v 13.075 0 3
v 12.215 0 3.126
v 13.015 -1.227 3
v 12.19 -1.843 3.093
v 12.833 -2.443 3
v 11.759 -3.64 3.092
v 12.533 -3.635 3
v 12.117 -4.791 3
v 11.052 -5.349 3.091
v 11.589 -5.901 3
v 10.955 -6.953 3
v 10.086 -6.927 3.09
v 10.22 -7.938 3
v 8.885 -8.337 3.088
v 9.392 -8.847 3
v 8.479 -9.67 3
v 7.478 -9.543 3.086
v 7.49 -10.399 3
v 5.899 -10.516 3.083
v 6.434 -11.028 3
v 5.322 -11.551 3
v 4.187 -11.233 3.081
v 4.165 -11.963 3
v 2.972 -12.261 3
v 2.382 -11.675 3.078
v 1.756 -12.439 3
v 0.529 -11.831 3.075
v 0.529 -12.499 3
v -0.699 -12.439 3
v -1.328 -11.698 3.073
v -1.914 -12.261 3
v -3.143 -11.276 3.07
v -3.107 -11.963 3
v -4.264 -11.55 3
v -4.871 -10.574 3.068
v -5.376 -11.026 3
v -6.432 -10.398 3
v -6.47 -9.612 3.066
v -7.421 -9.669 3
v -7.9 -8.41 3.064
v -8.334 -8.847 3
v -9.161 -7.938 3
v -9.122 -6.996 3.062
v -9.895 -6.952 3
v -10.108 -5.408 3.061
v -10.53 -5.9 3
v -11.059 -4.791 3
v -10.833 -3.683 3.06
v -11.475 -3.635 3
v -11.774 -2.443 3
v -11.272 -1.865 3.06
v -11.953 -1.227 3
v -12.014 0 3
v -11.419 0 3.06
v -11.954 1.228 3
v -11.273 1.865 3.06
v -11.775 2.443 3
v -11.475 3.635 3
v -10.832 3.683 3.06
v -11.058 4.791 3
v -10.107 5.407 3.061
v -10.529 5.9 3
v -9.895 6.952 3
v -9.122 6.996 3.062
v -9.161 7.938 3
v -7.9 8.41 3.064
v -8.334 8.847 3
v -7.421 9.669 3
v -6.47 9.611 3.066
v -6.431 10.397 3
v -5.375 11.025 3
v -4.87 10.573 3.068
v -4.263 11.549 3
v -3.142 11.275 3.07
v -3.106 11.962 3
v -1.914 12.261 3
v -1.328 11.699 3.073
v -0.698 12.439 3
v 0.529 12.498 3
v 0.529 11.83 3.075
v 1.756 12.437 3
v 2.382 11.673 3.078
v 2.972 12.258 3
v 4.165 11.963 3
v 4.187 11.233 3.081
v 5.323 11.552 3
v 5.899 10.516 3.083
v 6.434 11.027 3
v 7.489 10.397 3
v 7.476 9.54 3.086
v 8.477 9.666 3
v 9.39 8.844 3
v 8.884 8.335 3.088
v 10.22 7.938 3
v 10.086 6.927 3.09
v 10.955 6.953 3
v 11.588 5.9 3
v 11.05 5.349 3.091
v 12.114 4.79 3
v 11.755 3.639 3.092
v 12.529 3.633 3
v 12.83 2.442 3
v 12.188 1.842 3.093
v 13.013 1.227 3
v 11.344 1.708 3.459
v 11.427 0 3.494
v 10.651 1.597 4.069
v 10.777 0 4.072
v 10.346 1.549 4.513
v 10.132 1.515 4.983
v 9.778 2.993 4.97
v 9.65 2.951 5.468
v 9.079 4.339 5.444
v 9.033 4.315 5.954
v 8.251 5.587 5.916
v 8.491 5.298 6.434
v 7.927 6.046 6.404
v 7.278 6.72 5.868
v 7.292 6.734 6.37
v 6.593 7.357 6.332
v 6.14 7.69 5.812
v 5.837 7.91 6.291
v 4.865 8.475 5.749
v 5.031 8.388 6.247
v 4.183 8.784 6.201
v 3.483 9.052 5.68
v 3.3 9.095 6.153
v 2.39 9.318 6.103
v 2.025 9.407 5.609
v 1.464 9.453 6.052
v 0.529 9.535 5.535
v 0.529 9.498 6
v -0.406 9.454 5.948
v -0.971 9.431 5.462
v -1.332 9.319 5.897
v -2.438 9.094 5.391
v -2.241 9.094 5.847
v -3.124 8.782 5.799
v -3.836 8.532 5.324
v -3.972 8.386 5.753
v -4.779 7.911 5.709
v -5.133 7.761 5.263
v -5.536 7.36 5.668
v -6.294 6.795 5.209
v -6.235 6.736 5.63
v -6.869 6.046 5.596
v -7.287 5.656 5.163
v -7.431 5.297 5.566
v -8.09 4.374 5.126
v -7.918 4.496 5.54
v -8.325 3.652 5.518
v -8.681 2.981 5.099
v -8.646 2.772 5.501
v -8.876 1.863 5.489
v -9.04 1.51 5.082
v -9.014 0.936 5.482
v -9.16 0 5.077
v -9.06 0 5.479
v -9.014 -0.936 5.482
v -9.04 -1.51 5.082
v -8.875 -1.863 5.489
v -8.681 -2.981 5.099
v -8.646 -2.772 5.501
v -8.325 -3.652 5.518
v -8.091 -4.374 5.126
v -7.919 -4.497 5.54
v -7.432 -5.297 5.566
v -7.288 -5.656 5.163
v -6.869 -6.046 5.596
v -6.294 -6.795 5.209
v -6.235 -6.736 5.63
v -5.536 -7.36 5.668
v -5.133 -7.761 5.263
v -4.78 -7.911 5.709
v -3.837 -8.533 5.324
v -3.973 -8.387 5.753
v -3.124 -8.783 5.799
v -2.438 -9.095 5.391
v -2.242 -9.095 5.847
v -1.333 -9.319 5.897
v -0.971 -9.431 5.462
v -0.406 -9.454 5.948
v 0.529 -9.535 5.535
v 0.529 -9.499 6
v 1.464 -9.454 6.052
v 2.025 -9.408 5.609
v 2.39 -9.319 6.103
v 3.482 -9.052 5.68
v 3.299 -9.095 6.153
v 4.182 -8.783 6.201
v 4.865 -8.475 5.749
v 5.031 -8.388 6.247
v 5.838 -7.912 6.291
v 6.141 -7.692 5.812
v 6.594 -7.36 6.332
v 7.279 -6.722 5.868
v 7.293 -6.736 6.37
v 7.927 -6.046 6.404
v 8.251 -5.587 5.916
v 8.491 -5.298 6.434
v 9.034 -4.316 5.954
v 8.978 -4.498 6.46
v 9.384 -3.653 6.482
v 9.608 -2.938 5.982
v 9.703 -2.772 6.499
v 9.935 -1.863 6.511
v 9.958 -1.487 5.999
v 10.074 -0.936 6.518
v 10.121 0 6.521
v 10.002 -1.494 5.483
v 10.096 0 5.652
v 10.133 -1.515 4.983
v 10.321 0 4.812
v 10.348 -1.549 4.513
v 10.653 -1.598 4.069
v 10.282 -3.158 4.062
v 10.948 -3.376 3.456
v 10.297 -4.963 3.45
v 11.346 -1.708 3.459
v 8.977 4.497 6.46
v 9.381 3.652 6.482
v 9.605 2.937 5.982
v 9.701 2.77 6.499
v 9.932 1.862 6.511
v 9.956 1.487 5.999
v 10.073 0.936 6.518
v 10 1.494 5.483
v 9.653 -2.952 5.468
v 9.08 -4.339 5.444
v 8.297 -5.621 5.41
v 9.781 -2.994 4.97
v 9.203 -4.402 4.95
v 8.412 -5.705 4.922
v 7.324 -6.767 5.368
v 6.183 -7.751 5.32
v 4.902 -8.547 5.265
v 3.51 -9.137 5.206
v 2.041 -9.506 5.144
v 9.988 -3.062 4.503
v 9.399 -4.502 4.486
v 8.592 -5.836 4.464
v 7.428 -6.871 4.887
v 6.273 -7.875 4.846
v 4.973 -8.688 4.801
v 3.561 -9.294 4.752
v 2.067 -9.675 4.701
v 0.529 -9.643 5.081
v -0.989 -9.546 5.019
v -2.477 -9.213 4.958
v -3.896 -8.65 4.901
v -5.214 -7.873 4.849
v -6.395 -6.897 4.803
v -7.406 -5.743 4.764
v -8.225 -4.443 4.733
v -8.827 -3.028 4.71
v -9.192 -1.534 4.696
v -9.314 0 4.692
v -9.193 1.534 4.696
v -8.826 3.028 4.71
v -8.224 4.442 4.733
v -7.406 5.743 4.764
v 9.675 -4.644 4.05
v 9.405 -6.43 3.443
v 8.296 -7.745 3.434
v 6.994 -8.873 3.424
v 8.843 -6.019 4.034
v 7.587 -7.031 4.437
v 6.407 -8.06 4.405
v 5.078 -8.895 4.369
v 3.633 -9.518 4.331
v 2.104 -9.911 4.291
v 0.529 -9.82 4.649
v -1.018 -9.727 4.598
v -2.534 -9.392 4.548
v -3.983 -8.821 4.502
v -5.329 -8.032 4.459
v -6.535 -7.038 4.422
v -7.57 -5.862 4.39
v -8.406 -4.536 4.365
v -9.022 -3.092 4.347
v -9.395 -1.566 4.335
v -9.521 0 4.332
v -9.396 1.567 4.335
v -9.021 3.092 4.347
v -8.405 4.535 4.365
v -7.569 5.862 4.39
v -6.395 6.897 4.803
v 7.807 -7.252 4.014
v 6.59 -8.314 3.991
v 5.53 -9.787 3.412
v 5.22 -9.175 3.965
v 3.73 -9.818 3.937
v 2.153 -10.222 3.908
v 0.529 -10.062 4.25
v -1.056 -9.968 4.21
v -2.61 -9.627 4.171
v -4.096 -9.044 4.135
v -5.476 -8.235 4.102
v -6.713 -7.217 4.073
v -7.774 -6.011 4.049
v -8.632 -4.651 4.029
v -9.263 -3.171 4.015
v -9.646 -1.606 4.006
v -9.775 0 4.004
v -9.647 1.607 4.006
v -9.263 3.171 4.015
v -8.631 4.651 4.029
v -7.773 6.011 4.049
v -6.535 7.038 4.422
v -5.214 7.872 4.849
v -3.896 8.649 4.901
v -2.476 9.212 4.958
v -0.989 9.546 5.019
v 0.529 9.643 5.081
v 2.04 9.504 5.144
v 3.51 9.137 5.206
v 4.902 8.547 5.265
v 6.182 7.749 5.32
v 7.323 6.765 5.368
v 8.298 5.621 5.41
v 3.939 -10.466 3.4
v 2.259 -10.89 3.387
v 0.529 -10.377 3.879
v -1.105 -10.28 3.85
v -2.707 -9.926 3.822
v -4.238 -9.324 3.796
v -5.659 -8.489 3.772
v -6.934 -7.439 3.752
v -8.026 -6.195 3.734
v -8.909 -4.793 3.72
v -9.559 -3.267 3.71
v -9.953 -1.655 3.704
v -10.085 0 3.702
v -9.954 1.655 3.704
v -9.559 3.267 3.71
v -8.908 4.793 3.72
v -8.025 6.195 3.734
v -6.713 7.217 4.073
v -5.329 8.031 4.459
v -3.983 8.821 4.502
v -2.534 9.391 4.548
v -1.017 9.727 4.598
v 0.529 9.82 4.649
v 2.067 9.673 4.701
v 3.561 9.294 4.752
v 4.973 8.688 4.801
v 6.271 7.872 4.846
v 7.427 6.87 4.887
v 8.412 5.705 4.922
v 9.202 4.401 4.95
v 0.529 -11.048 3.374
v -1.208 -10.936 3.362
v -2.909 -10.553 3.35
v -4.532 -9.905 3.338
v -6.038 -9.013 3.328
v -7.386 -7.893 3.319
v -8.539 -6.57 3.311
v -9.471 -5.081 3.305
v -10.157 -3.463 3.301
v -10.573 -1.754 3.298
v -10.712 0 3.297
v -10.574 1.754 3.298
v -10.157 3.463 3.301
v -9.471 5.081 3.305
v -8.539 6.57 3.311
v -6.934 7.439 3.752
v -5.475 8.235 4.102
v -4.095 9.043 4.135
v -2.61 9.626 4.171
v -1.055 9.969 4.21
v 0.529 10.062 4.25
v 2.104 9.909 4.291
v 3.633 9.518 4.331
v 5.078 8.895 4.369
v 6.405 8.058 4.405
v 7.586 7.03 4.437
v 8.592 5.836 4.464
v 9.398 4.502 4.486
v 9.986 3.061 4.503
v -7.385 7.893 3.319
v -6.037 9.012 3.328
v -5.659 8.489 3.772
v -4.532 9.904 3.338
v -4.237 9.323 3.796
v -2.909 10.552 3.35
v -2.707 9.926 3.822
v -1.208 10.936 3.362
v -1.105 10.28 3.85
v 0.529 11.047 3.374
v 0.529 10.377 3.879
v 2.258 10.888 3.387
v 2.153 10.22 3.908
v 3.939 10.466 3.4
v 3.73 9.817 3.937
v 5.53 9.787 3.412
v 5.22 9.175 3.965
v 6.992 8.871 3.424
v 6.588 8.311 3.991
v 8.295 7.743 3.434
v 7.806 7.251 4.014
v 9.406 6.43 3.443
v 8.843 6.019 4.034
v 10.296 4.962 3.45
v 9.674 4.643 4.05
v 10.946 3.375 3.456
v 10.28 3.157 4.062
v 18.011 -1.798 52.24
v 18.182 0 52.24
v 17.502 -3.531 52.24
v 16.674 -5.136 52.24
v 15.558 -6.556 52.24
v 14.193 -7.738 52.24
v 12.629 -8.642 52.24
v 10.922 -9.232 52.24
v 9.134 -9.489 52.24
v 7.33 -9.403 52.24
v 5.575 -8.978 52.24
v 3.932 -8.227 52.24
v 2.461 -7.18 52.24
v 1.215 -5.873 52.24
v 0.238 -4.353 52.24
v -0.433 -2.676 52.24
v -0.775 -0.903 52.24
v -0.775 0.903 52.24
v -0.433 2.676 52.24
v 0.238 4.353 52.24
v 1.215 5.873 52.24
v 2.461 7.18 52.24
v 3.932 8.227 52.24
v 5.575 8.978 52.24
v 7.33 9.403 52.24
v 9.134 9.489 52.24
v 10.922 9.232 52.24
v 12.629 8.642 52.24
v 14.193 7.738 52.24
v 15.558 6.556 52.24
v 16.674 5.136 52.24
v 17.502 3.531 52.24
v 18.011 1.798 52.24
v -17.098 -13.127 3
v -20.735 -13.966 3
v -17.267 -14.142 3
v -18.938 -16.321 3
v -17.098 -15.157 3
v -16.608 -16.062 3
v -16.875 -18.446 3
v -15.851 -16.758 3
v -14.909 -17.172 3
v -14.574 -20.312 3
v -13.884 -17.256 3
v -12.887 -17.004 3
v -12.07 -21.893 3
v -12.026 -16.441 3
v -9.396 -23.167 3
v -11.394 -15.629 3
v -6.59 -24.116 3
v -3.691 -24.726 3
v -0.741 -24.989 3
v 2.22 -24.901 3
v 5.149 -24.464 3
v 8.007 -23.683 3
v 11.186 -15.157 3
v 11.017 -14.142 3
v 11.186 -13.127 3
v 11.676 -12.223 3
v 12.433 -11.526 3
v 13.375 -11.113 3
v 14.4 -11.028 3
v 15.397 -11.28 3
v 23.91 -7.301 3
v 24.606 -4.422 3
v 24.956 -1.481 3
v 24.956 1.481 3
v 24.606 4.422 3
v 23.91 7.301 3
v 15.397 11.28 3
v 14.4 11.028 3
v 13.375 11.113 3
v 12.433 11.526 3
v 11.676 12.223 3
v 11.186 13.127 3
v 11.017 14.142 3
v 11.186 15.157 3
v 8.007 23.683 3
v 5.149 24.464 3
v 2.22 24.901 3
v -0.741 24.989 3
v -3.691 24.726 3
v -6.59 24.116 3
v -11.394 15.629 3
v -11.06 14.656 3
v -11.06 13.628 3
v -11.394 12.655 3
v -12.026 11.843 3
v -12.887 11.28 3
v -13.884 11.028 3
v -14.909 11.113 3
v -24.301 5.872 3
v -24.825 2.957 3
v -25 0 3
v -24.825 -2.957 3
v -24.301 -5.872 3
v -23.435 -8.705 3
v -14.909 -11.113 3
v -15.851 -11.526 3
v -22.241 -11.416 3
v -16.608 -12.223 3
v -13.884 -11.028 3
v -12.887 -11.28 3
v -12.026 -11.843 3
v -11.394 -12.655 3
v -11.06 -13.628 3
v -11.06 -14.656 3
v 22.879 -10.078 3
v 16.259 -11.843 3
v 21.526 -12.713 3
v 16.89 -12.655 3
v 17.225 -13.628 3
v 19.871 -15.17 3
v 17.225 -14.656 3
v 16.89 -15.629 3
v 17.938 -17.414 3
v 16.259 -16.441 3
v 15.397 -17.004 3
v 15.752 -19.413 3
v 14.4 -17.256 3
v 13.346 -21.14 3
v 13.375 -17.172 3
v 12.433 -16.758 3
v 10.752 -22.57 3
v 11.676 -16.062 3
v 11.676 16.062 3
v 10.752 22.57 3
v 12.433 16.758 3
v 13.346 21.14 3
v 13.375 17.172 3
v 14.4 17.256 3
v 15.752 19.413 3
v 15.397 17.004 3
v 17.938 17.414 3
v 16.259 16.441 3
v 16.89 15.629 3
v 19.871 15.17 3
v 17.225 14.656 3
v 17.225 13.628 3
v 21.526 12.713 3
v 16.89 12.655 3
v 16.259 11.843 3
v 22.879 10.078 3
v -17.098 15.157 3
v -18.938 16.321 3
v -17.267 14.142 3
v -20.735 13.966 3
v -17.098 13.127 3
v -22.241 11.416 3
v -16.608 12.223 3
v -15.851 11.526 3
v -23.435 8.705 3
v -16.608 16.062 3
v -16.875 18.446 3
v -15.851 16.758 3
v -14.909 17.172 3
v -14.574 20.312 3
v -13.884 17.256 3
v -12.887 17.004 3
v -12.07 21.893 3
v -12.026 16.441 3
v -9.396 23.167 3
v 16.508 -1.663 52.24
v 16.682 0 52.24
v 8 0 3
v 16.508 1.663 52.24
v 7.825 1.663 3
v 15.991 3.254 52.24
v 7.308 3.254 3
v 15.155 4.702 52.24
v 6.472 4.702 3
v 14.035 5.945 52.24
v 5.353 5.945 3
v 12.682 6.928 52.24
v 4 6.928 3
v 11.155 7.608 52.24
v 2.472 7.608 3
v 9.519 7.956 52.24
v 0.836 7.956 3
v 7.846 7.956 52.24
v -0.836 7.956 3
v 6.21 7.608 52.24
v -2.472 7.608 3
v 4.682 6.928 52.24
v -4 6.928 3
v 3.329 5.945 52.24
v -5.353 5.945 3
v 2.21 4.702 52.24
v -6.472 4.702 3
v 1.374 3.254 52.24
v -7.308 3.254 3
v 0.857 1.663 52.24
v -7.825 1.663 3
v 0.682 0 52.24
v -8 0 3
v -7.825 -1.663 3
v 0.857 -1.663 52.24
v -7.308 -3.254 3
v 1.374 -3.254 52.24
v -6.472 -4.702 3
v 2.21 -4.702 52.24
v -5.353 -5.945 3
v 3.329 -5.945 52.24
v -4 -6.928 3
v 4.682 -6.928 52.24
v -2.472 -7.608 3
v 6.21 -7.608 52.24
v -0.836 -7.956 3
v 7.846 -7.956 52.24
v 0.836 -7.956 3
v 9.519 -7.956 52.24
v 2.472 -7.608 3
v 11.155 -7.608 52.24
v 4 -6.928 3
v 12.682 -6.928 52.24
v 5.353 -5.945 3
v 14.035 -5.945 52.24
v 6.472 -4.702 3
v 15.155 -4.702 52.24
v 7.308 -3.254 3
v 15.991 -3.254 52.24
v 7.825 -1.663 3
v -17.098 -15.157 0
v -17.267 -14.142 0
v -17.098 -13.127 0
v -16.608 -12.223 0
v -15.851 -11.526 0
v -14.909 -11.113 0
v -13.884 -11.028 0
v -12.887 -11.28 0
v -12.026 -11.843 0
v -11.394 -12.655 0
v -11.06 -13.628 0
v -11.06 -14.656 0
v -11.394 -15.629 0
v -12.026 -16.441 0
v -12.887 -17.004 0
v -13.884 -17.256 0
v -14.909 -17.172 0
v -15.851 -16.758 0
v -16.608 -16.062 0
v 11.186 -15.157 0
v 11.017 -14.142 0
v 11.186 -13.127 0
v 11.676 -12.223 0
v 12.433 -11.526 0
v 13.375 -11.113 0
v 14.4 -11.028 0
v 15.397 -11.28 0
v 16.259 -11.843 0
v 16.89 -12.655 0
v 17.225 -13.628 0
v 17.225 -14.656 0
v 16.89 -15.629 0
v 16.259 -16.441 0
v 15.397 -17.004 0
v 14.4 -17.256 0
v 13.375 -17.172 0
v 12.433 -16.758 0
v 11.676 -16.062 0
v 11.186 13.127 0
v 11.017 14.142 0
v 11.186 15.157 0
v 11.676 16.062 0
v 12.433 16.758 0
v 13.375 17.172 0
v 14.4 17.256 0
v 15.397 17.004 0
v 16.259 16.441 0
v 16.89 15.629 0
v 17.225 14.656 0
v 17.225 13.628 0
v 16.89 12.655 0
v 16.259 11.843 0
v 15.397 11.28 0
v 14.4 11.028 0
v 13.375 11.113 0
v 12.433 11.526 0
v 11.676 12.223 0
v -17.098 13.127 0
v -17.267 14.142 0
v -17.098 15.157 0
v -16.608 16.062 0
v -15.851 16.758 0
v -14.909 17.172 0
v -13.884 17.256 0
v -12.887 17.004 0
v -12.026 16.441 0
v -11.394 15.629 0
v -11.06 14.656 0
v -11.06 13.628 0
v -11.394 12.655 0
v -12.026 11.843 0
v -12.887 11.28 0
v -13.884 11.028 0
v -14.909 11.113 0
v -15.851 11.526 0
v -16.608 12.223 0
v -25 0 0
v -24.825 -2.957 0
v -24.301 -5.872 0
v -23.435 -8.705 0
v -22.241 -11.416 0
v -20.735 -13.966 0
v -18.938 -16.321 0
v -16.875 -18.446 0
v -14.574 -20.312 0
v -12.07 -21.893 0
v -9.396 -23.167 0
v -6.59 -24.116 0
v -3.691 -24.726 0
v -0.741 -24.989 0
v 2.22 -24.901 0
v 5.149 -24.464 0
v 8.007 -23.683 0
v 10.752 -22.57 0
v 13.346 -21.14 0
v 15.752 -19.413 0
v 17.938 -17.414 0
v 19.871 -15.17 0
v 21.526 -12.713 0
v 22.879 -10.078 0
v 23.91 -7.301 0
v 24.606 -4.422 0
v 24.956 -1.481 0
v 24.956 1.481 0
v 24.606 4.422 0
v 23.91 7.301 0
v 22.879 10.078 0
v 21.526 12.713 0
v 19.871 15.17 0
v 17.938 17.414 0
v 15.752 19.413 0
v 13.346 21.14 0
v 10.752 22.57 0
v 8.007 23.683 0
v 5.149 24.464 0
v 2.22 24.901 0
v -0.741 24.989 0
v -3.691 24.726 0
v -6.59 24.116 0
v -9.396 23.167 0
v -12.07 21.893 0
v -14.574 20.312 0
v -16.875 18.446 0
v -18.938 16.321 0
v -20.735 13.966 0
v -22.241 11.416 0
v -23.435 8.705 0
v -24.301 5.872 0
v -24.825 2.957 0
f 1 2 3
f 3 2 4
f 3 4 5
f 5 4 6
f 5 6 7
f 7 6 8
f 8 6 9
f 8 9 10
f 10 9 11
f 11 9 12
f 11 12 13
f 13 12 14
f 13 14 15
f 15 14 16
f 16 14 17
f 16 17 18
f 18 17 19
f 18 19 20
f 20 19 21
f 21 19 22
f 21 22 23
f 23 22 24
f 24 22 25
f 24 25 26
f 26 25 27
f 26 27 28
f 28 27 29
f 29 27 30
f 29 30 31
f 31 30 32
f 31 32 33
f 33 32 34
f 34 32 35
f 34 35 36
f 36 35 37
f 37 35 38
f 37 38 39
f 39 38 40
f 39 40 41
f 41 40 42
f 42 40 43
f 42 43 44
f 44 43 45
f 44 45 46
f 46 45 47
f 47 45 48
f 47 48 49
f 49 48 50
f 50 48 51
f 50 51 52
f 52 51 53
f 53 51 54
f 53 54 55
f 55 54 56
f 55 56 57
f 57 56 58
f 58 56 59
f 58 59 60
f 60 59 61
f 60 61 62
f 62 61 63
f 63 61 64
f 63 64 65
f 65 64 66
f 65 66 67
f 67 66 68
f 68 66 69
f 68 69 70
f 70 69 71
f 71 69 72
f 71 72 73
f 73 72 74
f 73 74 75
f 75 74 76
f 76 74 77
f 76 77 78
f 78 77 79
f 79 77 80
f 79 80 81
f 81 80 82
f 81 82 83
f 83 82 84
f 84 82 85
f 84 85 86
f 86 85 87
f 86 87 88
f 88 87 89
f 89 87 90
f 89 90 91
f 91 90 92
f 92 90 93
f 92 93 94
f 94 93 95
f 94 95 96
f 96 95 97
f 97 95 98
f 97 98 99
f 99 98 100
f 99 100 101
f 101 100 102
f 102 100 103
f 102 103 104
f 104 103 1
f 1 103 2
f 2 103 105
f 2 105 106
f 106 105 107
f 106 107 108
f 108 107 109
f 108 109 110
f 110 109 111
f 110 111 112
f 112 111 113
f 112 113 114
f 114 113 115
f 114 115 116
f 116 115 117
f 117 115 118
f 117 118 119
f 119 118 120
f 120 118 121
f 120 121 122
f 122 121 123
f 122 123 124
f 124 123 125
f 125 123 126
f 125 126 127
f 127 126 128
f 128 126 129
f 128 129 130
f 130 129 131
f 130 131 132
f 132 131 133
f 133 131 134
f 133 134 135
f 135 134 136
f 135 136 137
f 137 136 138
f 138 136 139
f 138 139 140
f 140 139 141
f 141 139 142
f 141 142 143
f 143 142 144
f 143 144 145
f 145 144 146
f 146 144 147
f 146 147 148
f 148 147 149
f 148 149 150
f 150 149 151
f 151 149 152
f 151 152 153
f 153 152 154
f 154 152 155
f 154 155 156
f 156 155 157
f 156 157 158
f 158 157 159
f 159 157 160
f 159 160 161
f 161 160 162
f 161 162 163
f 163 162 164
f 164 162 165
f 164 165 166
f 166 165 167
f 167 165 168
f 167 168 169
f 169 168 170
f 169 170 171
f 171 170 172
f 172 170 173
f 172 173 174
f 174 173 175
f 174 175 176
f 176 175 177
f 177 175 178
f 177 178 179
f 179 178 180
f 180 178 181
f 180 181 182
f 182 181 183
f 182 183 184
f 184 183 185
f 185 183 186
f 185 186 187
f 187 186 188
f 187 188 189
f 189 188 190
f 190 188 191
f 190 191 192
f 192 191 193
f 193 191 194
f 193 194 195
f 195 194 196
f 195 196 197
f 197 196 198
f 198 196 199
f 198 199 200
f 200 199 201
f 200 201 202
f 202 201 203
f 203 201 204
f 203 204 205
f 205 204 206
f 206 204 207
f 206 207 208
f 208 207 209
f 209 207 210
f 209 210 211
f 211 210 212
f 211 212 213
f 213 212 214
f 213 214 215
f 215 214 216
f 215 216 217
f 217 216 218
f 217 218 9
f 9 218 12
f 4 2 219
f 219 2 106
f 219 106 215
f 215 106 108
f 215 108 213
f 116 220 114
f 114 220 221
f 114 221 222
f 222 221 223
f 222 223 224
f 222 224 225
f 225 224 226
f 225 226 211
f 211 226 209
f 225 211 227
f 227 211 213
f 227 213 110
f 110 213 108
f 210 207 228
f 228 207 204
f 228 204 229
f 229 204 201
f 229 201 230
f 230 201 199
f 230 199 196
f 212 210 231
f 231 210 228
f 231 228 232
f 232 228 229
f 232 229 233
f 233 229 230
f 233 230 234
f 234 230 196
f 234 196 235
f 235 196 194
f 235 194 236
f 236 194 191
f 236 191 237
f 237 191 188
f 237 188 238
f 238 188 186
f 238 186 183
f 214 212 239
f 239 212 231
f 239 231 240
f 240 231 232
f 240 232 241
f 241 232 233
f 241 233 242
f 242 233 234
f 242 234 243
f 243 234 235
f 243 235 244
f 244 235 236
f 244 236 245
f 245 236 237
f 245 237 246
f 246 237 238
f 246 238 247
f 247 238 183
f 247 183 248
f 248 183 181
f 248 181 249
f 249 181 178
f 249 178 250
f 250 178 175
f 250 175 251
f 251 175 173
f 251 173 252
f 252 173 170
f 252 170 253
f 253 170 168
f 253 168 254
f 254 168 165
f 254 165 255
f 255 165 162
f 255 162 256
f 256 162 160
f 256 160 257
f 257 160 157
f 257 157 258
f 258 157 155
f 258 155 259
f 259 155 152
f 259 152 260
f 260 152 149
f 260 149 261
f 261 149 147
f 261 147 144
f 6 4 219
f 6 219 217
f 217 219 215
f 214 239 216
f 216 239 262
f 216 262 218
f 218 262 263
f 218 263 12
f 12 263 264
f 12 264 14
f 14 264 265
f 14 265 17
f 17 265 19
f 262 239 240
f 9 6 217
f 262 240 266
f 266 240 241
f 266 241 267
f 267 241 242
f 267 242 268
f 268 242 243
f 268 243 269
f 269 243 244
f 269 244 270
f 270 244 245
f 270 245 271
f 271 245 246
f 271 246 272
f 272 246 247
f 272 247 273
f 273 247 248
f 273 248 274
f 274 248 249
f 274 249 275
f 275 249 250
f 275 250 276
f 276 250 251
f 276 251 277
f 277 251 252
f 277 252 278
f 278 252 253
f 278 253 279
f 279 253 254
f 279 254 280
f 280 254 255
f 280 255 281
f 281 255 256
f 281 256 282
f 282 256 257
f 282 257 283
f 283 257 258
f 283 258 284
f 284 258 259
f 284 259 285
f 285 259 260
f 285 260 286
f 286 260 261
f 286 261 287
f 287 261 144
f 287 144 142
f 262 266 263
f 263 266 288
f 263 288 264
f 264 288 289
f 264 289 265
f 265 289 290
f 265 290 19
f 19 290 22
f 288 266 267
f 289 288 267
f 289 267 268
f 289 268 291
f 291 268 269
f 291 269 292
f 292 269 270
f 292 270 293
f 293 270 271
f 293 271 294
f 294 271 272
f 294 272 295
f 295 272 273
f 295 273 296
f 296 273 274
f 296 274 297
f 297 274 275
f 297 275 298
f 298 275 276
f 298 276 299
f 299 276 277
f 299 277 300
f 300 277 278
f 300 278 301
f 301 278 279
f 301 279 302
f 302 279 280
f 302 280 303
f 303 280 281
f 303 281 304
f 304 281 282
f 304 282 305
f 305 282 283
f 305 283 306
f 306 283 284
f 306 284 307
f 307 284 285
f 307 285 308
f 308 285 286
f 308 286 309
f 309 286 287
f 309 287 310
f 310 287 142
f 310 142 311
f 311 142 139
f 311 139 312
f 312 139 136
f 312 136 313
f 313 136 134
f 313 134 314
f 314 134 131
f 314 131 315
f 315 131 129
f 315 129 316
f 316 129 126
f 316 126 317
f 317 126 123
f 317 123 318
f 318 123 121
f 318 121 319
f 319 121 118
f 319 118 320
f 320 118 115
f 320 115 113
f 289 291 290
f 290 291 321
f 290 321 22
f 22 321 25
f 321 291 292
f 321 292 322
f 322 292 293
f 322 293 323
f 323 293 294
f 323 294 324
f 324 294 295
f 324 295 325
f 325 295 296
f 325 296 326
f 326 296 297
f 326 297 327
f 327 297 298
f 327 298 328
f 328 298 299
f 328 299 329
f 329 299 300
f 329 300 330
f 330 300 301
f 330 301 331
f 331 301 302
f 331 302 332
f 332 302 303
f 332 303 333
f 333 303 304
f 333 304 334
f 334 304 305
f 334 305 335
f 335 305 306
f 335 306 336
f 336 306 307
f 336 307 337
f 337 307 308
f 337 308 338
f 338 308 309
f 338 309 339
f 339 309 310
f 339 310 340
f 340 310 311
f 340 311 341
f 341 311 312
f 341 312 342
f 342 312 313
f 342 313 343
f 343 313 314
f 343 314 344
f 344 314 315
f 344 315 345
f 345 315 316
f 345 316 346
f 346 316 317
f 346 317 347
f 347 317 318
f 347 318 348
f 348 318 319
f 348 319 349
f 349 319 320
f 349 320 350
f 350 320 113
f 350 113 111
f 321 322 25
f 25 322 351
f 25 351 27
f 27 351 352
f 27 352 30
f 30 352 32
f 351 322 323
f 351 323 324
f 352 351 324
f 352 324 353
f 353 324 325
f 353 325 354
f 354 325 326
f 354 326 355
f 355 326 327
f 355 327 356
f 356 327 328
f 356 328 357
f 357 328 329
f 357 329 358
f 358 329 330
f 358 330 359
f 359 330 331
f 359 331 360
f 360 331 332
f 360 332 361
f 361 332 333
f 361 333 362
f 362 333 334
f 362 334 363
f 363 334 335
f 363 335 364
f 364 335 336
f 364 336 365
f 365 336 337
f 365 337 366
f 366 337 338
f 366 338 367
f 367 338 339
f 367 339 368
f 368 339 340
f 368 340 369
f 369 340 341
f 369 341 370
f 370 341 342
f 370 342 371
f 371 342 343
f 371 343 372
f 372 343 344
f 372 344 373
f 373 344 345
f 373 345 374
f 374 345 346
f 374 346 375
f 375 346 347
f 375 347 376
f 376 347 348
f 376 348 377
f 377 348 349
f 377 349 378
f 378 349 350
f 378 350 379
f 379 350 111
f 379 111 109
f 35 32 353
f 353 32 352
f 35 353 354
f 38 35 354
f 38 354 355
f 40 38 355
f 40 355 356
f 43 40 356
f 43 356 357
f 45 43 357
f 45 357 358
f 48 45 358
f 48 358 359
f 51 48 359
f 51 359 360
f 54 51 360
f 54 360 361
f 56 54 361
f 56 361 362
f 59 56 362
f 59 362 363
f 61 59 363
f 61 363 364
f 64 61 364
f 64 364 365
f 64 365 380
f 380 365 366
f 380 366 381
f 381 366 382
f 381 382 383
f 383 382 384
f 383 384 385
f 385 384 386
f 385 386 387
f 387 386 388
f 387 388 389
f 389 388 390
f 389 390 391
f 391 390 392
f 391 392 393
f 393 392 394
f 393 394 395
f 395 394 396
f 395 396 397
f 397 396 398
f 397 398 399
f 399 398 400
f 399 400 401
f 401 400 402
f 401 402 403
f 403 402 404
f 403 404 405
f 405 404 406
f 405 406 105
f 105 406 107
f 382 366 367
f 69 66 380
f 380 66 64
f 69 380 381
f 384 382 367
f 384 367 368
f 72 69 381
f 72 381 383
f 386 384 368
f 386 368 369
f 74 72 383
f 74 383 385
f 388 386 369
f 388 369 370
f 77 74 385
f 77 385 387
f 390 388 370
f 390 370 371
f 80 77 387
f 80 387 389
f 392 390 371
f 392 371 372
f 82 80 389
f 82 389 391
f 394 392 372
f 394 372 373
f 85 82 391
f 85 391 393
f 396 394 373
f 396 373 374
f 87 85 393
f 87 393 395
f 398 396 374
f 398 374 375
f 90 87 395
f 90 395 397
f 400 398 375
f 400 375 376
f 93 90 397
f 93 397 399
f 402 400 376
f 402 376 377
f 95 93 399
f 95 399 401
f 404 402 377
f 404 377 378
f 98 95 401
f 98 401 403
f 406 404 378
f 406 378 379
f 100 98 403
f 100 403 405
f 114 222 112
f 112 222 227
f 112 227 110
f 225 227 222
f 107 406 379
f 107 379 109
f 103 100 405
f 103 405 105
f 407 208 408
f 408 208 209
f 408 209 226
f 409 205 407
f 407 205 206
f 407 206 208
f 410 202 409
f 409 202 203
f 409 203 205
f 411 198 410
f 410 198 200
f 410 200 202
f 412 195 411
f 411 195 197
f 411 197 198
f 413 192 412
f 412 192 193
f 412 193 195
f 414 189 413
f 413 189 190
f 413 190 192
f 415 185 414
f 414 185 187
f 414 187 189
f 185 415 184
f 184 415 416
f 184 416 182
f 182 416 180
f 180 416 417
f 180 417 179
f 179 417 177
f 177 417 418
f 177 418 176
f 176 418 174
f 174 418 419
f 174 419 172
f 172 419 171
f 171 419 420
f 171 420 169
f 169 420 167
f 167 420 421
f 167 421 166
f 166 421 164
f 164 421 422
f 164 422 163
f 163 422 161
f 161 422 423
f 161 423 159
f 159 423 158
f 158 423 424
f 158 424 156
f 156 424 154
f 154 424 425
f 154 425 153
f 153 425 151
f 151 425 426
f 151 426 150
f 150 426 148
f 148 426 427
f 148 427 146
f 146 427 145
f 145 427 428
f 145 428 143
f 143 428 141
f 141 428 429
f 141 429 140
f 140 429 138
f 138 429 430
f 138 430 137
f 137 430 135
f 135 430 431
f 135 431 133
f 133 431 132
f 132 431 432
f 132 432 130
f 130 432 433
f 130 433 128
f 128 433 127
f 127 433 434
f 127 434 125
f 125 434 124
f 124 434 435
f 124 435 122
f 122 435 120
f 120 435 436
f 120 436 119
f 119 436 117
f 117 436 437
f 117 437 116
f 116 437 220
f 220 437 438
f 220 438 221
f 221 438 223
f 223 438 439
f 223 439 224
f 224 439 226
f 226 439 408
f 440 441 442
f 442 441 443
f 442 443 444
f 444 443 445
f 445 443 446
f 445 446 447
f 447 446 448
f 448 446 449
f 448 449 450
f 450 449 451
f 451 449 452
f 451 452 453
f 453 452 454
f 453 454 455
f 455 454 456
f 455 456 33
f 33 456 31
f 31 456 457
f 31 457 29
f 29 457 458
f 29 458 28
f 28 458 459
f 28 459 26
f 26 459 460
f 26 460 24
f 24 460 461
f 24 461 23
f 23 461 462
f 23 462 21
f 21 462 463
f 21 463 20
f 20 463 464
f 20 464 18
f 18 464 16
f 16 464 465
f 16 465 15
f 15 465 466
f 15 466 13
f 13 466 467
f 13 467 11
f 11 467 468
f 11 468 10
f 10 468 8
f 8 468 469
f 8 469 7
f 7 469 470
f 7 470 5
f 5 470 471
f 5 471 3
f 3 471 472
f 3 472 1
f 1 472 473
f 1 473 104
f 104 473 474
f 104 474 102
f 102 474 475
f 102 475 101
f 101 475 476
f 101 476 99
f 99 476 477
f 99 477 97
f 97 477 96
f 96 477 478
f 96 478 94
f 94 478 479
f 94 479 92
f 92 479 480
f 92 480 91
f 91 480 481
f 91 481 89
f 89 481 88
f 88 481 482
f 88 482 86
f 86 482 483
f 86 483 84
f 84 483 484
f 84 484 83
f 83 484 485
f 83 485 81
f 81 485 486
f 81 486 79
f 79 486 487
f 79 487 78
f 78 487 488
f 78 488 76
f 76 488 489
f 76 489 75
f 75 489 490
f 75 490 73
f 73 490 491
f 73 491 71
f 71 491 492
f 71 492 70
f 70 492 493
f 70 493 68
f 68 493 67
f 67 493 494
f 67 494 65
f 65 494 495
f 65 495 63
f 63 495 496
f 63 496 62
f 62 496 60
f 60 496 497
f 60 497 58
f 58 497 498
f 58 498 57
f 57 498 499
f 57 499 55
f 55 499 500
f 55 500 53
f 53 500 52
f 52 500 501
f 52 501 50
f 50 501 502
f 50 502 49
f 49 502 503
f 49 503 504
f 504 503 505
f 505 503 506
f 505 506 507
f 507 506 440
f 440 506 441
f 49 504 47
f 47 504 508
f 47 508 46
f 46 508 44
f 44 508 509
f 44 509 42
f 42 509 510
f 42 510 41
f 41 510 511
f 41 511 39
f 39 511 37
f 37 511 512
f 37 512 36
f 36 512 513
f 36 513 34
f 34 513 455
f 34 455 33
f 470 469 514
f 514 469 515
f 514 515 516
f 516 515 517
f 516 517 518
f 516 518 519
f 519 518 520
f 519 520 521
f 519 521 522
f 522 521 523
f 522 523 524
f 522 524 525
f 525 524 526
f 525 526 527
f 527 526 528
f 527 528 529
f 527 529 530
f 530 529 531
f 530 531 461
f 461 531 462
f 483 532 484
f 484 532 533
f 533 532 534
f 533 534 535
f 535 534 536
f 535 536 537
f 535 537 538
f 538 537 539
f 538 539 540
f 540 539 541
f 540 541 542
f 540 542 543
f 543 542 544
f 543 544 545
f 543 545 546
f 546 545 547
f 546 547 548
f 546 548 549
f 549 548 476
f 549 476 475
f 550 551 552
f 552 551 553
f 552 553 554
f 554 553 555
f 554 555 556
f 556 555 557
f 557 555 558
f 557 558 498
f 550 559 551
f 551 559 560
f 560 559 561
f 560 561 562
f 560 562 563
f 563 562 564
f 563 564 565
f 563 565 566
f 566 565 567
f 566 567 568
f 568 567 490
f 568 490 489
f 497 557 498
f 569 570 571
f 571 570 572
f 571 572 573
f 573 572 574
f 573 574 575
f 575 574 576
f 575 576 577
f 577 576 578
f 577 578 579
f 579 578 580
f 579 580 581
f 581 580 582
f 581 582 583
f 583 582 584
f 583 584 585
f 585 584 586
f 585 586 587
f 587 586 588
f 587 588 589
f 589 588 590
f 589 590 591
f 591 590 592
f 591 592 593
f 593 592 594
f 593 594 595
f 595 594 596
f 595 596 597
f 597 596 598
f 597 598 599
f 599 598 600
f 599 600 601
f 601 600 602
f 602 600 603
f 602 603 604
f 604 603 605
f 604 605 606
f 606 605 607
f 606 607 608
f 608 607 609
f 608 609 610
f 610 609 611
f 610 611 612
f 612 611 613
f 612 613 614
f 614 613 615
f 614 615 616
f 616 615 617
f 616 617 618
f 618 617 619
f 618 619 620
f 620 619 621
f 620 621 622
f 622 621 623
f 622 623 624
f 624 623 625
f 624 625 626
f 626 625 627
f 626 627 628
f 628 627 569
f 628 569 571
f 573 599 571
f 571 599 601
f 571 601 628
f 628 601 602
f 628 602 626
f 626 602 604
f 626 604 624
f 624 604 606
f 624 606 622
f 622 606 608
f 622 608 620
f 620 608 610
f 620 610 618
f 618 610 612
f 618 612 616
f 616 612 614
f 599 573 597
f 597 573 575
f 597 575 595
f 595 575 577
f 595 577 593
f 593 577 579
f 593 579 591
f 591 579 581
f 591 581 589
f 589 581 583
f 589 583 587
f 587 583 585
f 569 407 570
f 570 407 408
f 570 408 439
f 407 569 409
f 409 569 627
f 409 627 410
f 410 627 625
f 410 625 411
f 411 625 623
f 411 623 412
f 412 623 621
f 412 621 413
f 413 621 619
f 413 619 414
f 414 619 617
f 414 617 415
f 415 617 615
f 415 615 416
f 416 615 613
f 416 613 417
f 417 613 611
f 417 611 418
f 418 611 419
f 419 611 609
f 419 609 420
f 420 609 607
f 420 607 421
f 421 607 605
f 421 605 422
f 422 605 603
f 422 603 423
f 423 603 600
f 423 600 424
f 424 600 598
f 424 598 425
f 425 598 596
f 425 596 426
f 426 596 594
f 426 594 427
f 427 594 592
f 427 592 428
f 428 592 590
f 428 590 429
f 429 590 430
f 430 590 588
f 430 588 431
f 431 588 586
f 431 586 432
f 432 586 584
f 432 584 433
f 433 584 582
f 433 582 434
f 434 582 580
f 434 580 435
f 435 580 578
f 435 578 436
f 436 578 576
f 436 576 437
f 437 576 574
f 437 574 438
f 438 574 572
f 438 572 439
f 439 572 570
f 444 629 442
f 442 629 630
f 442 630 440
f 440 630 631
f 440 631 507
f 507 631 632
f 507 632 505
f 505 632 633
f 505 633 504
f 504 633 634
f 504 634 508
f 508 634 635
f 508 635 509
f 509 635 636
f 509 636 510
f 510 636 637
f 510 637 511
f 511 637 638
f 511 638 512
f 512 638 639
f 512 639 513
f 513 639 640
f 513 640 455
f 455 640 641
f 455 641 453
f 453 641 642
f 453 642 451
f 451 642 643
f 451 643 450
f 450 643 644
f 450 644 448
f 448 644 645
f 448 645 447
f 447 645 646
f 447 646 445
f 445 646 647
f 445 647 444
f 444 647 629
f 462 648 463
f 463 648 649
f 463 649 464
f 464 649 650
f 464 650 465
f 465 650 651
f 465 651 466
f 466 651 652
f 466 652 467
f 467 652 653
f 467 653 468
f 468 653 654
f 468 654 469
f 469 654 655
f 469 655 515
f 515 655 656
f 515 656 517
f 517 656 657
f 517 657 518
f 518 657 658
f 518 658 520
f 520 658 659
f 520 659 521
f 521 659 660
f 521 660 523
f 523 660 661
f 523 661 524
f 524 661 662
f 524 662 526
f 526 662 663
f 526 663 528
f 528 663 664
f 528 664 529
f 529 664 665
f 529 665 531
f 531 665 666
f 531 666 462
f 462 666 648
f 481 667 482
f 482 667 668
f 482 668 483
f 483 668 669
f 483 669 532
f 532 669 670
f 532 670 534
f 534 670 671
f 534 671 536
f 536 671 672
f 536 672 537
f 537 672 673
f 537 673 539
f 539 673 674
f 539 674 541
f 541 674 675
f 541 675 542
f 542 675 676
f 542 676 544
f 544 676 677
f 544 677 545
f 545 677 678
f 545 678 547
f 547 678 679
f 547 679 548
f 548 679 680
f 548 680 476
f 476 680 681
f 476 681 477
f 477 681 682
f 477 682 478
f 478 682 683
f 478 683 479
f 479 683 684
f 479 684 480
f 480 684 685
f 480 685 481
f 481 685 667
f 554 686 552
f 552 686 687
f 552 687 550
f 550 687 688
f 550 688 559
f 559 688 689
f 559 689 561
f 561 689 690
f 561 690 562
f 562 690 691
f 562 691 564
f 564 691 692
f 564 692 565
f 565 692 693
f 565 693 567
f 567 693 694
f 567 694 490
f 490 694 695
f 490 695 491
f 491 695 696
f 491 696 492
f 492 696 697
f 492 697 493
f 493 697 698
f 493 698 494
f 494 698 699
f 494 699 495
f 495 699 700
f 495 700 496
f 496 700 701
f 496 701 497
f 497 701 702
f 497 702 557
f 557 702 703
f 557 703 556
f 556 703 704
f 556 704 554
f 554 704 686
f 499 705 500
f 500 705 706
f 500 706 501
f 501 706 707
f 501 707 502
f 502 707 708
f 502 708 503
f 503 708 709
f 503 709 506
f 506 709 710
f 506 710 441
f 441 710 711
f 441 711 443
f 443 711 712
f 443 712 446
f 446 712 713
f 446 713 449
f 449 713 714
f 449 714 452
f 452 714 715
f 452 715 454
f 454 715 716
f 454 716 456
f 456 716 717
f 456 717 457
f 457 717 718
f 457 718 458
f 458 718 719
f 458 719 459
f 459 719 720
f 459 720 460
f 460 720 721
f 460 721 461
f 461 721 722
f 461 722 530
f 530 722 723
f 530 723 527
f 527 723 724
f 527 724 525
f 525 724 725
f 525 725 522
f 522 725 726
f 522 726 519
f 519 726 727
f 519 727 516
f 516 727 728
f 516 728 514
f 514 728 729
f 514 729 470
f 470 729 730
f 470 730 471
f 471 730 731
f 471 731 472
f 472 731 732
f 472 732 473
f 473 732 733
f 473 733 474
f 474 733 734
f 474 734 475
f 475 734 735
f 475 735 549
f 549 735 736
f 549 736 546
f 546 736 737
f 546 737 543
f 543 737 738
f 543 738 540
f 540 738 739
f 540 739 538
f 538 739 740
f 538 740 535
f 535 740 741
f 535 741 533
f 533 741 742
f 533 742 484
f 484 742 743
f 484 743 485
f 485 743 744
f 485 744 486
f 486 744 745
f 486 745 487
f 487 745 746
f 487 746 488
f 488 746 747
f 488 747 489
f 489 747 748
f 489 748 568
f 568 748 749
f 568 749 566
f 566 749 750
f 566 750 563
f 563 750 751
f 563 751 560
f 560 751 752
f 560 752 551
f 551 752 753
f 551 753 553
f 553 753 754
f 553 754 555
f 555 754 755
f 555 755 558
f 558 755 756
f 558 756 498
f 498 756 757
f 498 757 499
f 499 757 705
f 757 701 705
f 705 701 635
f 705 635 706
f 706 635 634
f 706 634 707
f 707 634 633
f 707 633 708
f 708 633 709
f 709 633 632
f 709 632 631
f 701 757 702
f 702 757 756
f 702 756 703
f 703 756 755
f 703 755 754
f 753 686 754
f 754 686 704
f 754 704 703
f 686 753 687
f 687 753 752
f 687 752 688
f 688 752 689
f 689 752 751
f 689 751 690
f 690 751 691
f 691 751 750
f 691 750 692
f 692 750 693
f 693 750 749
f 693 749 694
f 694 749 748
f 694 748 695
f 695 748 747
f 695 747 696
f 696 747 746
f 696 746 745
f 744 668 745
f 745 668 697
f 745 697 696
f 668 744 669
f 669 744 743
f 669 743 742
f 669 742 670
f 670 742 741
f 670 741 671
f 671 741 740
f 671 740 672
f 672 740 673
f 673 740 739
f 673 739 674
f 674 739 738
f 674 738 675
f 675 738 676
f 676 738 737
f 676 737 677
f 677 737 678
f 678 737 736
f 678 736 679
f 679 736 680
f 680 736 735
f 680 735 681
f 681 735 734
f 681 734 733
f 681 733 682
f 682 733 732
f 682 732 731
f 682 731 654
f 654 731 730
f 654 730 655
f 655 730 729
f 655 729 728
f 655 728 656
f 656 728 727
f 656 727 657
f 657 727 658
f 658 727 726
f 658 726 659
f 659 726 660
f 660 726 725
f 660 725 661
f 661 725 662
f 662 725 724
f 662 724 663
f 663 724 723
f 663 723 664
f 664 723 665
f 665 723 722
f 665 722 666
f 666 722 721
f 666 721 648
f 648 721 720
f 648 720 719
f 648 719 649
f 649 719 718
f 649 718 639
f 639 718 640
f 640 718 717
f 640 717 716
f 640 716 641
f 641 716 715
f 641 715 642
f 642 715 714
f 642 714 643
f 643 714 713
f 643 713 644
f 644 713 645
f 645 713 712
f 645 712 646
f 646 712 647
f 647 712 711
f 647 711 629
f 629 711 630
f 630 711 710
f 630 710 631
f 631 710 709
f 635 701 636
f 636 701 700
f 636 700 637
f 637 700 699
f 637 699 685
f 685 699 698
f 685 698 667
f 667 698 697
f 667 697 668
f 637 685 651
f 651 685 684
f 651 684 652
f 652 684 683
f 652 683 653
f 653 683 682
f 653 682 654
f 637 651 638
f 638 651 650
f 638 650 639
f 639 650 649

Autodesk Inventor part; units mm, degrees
ref_plane "YZ Plane" through (0, 0, 0) normal (1, 0, 0) x (0, 1, 0)
ref_plane "XZ Plane" through (0, 0, 0) normal (0, 1, 0) x (-1, 0, 0)
ref_plane "XY Plane" through (0, 0, 0) normal (0, 0, 1) x (1, 0, 0)
sketch "Sketch2" plane through (0, 0, 0) normal (0, 0, 1) x (-1, 0, 0)
  circle A0 centre (0, 0) radius 25
  line L0 (0, 0) -> (20, 0) construction
  line L1 (0, 0) -> (20, 0) construction
  line L2 (0, 0) -> (20, 0) construction
  line L3 (0, 0) -> (20, 0) construction
  circle A1 centre (14.1421, 14.1421) radius 3.125
  circle A2 centre (-14.1421, 14.1421) radius 3.125
  circle A3 centre (-14.1421, -14.1421) radius 3.125
  circle A4 centre (14.1421, -14.1421) radius 3.125
  dimension "d0" = 50
  dimension "d10" = 6.25
  dimension "d11" = 6.25
  dimension "d12" = 6.25
  dimension "d13" = 6.25
extrude "Extrusion1" add sketch "Sketch2" along normal blind 3
sketch "Sketch19" plane through (0, 0, 3) normal (0, 0, 1) x (1, 0, 0)
  circle A0 centre (0, 0) radius 9.5
  dimension "d40" = 19
sketch "Sketch22" plane through (0, 0, 0) normal (0, 1, 0) x (-1, 0, 0)
  line L0 (25, 3) -> (-25, 3) projected
  line L1 (0, 3) -> (-8.6824, 52.2404)
  line L2 (0, 3) -> (50, 3) construction
  point P0 (0, 0)
  dimension "d41" = 50
  dimension "d42" = 100
sweep "Sweep4" add profiles "Sketch19" path "Sketch22" path curves L1
sketch "Sketch23" plane through (0, 0, 3) normal (0, 0, 1) x (1, 0, 0)
  circle A0 centre (0, 0) radius 8
  dimension "d45" = 16
sketch "Sketch25" plane through (0, 0, 0) normal (0, 1, 0) x (-1, 0, 0)
  line L0 (25, 3) -> (-25, 3) projected
  line L1 (0, 3) -> (-8.6824, 52.2404)
  line L2 (0, 3) -> (50, 3) construction
  point P0 (0, 0)
  dimension "d46" = 50
  dimension "d47" = 100
sweep "Sweep5" cut profiles "Sketch23" path "Sketch25" path curves L1
fillet "Fillet2" radius 3 1 edges at (-9.5, 0, 3)
properties part number "SoporteMarcador"
